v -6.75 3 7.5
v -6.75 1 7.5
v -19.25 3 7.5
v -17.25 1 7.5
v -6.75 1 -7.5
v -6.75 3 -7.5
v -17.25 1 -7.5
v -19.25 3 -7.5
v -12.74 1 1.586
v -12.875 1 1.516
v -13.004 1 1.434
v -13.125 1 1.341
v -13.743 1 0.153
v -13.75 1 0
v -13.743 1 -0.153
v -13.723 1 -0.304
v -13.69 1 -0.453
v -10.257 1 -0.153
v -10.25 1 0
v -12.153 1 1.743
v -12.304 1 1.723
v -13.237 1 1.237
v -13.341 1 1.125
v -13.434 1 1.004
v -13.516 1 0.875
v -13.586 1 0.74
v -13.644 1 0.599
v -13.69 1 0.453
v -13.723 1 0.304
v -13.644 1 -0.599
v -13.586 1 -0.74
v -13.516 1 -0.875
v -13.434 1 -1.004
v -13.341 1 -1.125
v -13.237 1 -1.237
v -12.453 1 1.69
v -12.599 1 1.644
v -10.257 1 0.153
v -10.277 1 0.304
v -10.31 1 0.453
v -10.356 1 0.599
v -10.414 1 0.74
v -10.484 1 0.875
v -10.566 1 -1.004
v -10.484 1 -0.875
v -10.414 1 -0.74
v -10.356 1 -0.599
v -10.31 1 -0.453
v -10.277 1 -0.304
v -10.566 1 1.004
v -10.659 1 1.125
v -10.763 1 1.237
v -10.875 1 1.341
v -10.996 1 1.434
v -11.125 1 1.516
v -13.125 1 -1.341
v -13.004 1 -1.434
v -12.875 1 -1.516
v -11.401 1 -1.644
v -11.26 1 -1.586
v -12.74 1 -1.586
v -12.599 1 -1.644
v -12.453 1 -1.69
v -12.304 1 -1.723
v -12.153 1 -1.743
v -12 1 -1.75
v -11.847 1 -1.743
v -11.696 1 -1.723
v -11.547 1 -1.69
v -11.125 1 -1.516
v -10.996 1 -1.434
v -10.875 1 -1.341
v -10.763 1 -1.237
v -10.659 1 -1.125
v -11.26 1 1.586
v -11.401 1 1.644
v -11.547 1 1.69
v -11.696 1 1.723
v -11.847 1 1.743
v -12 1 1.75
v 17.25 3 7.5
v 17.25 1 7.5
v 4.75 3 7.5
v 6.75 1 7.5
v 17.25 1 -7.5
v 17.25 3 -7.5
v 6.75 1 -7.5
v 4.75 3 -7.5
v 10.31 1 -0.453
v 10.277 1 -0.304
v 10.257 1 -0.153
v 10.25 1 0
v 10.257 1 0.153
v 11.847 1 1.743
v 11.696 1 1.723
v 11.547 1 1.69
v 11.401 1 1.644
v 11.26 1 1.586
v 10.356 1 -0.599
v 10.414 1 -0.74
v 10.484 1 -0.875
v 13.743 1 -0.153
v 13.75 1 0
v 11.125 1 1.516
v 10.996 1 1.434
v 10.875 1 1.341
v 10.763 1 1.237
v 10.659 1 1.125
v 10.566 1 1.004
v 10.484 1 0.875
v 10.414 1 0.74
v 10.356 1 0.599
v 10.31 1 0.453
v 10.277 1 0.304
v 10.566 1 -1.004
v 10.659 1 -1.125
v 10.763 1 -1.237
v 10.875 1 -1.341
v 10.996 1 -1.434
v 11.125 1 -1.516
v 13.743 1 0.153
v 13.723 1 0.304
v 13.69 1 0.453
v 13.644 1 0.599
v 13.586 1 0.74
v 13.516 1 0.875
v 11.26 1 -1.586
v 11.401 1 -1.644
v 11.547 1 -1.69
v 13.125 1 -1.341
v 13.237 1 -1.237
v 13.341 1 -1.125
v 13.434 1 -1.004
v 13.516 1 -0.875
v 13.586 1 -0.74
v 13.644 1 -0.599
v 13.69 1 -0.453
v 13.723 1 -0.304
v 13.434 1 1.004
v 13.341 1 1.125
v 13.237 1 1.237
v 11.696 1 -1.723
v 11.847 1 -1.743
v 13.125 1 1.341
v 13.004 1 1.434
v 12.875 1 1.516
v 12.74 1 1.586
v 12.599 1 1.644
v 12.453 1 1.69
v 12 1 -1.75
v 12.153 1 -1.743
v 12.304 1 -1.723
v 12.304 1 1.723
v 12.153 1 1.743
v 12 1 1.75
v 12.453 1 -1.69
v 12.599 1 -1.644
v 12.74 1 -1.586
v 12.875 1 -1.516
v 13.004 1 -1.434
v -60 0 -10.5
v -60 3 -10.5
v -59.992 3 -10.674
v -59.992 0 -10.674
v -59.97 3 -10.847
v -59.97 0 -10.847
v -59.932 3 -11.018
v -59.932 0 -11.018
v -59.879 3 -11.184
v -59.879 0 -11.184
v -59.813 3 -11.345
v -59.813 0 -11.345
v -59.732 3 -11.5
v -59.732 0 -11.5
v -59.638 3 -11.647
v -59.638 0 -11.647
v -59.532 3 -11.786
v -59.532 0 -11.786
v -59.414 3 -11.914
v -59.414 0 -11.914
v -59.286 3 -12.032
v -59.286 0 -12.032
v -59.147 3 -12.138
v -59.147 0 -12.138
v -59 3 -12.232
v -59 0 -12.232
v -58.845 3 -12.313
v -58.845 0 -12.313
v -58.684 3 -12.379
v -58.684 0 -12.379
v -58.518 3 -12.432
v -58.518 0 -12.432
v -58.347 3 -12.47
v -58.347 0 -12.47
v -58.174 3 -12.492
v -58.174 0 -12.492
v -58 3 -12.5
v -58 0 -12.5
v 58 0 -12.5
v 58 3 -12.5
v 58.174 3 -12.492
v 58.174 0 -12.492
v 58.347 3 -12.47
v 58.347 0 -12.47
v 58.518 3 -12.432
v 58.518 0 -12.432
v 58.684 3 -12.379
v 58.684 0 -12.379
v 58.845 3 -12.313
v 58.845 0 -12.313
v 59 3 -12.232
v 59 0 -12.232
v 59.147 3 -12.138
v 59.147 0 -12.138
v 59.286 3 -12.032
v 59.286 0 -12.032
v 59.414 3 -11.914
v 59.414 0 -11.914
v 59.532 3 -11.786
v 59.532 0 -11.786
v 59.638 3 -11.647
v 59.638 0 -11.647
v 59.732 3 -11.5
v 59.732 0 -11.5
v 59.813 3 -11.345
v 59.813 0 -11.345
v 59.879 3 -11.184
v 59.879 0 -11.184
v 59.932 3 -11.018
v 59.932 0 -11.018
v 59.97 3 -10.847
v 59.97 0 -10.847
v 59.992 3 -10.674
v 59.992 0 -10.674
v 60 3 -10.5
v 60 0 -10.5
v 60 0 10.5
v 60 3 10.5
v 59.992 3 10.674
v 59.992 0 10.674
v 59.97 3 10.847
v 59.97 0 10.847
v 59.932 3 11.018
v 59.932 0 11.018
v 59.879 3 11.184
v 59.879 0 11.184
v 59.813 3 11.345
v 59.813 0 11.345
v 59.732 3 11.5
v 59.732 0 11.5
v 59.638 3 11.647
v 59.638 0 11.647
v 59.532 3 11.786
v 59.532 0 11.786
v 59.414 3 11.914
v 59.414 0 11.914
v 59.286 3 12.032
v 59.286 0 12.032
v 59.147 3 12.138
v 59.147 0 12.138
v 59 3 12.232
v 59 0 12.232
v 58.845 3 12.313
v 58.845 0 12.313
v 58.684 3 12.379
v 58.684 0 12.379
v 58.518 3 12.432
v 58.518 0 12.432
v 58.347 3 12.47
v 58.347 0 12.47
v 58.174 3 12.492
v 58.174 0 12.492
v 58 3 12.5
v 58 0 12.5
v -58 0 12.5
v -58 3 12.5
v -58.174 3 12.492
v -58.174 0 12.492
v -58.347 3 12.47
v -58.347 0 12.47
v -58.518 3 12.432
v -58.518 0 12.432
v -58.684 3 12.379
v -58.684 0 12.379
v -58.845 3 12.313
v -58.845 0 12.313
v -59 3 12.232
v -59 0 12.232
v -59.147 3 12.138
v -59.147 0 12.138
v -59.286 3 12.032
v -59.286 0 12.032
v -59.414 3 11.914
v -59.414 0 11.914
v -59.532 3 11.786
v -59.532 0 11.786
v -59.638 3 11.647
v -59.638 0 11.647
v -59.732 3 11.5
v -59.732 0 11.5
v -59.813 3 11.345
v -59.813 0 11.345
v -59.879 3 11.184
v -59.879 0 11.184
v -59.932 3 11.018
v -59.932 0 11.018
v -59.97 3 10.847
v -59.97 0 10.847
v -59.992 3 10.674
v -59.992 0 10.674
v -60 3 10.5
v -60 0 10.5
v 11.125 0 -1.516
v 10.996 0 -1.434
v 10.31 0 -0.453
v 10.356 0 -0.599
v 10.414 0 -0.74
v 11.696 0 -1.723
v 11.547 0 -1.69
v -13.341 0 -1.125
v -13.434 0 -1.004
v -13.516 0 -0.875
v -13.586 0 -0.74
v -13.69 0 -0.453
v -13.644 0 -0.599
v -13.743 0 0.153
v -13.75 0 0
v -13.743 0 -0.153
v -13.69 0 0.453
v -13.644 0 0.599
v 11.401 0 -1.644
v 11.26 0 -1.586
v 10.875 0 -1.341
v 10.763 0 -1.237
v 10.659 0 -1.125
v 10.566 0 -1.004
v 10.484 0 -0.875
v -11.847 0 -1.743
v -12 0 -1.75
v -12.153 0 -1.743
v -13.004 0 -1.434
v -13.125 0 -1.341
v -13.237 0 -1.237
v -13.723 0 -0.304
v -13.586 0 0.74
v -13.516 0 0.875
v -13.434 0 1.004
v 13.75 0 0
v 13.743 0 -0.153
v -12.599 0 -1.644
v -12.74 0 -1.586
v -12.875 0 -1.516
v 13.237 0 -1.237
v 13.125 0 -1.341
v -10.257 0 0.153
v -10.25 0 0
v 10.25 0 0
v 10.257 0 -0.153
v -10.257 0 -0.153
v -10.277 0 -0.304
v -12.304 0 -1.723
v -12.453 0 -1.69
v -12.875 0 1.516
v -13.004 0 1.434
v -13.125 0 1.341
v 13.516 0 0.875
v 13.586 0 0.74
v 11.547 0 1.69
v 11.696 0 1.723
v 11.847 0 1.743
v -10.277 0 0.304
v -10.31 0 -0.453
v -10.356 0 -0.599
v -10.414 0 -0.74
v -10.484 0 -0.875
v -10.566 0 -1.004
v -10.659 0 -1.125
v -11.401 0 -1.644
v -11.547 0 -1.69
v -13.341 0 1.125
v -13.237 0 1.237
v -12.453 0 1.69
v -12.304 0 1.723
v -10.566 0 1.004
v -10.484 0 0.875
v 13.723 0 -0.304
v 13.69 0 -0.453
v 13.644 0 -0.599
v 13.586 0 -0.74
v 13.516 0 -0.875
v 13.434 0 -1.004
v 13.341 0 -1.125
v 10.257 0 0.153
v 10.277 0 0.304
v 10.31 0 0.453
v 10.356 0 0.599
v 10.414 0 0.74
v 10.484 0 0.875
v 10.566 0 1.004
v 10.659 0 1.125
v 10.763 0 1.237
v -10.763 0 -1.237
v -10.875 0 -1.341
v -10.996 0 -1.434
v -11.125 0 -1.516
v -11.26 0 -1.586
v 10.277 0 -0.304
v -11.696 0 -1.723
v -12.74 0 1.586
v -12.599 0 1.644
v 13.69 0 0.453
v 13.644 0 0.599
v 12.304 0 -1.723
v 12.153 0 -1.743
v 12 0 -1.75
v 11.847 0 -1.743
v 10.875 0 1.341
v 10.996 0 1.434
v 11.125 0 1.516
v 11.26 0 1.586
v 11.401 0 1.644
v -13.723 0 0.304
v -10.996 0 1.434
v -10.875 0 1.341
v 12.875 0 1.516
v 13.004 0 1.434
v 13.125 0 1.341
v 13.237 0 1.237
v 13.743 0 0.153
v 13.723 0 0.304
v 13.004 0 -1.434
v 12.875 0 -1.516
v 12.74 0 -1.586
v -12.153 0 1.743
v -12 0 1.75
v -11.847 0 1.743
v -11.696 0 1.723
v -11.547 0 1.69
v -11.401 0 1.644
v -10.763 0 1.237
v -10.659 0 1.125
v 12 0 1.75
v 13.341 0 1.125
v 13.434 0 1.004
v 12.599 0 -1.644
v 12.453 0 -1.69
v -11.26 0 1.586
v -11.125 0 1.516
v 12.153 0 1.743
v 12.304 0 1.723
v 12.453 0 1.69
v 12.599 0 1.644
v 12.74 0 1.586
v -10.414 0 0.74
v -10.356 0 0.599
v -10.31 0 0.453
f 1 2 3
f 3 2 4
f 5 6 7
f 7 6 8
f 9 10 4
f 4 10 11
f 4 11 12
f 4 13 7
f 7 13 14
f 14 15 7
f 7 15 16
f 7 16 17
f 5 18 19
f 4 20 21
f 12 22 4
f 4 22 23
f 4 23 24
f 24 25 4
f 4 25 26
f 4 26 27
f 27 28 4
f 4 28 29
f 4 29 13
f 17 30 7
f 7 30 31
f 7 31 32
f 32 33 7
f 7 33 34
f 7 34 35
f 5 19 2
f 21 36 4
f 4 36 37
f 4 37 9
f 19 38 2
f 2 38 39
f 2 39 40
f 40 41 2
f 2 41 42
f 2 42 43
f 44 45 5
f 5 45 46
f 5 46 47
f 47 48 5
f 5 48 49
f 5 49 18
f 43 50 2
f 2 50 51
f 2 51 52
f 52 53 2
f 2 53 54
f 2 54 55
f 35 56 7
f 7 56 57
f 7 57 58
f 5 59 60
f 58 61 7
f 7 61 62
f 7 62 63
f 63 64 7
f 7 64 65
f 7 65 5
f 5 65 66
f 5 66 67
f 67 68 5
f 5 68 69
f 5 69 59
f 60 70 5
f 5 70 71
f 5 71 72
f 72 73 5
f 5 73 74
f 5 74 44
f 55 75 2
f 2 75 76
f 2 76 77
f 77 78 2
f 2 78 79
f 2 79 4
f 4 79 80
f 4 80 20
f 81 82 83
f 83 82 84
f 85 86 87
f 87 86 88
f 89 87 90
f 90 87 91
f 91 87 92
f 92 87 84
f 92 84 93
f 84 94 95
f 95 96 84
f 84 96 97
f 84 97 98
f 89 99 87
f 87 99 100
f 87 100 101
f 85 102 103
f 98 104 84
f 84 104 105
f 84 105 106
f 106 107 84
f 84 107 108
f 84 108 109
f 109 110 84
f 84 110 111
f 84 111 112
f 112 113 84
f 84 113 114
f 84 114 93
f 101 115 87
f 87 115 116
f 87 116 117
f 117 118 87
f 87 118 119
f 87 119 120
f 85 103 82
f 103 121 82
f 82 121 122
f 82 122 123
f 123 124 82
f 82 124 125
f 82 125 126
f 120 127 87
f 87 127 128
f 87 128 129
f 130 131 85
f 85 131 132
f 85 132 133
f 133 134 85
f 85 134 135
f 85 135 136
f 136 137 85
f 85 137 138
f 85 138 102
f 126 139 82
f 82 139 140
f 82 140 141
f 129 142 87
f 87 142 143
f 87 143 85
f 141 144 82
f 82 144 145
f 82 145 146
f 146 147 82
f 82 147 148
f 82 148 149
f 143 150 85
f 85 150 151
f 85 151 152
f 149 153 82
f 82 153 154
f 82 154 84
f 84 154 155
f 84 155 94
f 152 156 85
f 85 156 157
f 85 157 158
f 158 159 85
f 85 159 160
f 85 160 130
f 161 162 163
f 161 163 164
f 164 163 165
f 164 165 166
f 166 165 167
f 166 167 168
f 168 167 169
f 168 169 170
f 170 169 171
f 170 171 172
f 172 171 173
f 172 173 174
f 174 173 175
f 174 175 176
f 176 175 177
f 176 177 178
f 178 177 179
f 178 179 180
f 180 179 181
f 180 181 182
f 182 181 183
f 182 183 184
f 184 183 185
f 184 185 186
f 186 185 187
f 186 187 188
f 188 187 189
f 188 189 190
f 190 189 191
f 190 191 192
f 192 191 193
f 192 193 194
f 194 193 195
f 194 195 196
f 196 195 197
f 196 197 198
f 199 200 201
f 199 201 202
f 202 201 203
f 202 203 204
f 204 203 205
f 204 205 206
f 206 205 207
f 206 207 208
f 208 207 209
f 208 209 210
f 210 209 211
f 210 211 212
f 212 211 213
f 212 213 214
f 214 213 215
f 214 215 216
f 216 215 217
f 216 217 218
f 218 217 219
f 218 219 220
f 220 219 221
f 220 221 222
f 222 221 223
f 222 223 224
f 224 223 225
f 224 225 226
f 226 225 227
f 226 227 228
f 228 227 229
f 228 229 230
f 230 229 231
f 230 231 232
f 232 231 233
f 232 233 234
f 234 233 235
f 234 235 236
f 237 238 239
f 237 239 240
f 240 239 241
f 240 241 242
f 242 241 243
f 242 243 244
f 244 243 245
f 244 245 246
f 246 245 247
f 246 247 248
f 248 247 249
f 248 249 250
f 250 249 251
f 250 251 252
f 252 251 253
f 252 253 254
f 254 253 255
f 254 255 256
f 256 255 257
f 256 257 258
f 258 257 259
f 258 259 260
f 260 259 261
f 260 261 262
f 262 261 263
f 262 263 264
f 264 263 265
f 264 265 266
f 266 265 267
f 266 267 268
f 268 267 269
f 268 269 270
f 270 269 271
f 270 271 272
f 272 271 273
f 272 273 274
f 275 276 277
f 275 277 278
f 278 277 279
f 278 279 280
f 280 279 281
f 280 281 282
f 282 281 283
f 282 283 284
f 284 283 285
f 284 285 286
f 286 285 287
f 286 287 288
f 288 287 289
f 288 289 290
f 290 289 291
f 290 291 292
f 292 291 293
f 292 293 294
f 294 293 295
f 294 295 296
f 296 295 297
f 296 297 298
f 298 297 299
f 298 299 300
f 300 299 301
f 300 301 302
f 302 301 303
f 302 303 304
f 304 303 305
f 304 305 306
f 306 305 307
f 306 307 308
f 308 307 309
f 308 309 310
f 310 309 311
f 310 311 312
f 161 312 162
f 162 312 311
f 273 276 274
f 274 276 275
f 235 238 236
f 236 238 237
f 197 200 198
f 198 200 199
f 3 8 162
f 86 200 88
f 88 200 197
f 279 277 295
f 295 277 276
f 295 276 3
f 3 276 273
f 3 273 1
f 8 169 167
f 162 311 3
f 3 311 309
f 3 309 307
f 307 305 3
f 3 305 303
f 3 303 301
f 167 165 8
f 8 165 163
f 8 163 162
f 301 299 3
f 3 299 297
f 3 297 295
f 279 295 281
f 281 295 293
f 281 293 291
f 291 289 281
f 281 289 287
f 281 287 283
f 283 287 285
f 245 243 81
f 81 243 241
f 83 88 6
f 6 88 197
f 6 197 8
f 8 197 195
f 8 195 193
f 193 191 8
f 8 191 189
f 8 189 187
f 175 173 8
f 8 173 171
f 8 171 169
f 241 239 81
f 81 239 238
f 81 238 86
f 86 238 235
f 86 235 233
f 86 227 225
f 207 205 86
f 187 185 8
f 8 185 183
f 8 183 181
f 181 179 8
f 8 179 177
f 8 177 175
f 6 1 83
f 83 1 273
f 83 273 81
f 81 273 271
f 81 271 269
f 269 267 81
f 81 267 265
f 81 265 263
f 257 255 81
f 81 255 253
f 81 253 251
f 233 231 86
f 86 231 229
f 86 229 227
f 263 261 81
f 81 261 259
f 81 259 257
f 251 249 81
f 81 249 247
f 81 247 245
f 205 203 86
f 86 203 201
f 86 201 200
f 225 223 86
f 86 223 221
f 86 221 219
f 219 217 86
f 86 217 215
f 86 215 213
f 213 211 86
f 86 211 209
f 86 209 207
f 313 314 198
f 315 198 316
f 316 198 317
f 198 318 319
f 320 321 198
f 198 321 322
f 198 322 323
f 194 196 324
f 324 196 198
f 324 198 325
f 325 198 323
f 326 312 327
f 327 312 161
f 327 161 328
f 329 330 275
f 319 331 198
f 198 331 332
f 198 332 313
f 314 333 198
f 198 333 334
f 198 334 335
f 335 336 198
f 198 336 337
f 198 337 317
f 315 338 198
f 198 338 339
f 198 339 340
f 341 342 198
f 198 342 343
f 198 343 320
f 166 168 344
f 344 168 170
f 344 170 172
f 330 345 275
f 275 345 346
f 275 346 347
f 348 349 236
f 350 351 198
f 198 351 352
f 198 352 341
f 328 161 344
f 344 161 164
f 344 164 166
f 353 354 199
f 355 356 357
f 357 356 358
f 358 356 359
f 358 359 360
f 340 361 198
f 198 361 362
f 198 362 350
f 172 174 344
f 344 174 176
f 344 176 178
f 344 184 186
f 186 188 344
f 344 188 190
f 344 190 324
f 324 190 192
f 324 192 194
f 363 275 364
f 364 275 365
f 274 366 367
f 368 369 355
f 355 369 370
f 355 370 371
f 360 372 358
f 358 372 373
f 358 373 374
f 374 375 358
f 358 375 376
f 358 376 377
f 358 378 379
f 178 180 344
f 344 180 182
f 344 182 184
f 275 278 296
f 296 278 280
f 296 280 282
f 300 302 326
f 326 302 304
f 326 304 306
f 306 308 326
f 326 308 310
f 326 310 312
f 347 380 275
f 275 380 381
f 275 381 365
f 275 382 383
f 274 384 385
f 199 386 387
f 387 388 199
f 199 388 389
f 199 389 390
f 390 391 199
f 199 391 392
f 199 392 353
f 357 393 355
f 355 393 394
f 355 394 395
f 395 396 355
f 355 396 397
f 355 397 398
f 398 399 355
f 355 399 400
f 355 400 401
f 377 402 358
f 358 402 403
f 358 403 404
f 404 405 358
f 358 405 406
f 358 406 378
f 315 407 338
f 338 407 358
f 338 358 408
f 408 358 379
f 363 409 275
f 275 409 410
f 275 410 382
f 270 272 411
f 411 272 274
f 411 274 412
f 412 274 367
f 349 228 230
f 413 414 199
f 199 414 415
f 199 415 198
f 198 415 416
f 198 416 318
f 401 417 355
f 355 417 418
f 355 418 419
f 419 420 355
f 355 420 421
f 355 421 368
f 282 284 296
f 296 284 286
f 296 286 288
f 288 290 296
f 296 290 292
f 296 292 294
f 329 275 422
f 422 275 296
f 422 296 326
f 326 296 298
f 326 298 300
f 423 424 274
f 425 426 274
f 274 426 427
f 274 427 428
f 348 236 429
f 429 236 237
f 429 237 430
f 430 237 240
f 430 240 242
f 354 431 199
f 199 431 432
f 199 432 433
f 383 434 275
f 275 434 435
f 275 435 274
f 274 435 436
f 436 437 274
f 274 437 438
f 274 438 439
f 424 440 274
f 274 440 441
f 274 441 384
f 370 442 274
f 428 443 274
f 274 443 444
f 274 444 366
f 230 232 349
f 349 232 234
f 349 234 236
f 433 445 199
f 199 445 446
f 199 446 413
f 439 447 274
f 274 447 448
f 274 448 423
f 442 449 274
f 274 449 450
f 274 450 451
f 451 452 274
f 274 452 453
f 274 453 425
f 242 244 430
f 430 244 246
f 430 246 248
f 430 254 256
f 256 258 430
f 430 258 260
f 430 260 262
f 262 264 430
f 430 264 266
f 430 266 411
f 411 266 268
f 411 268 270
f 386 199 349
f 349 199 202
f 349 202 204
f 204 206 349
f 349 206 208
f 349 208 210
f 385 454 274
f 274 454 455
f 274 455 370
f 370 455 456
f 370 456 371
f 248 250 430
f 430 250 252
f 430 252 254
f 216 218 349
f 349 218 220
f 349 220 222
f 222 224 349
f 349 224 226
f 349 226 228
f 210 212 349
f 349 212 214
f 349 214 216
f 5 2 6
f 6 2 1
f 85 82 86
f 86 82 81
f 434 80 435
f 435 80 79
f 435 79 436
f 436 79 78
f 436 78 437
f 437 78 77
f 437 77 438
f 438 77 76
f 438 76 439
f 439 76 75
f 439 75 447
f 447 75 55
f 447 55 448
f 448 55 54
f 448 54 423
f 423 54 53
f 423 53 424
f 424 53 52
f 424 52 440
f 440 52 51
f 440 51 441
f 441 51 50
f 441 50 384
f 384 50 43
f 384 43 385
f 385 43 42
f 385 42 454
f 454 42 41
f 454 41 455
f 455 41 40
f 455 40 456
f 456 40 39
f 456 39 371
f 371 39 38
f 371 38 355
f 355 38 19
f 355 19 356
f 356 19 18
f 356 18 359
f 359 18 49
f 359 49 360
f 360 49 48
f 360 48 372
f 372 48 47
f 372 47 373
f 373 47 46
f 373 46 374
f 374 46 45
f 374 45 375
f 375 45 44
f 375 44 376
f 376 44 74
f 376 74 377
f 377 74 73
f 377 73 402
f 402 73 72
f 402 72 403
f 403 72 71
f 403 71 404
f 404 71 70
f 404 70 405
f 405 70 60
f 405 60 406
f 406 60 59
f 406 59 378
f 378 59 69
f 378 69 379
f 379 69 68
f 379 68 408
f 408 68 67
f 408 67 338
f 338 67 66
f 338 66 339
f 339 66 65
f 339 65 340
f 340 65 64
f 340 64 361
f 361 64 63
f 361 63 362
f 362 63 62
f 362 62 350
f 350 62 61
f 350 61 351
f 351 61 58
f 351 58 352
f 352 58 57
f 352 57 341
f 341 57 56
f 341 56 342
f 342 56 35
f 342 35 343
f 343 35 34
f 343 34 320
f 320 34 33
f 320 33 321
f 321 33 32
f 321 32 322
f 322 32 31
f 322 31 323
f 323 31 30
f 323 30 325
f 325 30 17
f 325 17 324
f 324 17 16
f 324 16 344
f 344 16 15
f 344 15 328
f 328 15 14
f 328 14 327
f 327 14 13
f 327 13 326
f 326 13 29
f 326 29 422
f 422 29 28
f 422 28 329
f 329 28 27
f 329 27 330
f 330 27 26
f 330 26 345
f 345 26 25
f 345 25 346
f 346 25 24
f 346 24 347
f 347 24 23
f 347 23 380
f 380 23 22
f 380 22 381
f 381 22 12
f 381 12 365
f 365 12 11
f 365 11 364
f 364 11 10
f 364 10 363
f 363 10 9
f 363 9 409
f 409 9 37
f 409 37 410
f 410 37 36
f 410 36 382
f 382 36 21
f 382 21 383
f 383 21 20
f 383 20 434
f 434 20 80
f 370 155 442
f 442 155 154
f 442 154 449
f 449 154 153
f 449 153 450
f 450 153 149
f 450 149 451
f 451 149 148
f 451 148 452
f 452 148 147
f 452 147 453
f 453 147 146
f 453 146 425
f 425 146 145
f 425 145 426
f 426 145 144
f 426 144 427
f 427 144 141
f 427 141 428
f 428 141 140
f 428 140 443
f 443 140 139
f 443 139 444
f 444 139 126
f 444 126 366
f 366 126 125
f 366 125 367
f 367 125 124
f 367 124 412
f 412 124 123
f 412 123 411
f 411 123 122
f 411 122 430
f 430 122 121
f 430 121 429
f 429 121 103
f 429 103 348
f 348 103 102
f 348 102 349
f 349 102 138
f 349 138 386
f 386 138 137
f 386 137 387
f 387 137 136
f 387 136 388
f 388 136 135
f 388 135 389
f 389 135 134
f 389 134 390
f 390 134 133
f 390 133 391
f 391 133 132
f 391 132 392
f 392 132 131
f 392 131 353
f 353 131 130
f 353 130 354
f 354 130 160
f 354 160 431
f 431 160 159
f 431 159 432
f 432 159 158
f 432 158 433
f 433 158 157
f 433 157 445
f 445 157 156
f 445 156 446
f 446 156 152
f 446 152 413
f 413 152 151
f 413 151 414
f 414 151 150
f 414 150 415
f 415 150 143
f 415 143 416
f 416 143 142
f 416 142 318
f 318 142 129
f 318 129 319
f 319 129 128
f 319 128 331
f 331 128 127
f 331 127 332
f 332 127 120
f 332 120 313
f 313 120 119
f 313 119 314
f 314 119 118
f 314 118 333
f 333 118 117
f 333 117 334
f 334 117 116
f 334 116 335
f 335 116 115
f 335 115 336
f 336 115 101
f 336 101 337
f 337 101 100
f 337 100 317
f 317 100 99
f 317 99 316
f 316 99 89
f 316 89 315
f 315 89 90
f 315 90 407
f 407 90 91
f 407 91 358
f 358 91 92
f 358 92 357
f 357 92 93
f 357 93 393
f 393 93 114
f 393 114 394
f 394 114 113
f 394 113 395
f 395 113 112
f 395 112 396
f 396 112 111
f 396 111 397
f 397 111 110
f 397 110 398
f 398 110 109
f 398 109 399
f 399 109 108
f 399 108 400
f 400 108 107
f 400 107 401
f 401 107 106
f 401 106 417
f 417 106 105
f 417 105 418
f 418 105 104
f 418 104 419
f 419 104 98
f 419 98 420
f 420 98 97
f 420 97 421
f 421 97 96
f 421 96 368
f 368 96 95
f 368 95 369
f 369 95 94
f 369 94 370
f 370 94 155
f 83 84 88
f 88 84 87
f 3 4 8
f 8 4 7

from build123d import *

# Parameters (mm, degrees)
TOP_COVER_W             = 120
TOP_COVER_H             = 25
BOSS_EXTRUDE1_DEPTH     = 3
ATTACHMENT_POINT_W      = 10.5
ATTACHMENT_POINT_H      = 15
CUT_EXTRUDE1_DEPTH      = 2
SKETCH4_R               = 1.75
M3_SCREW_CUT_DEPTH      = 62.361632964
FILLET1_R               = 2
FILLET2_R               = 2
FILLET3_R               = 2
FILLET4_R               = 2
SKETCH5_W               = 3
SKETCH5_H               = 15
CUT_EXTRUDE3_DEPTH      = 2
CONNETOR_1_ANGLE_DEPTH  = 15
CONNECTOR_2_ANGLE_DEPTH = 15


with BuildPart() as part:
    # Top Cover → Boss-Extrude1 (new body)
    with BuildSketch(Plane(origin=(0, 0, 0), x_dir=(1, 0, 0), z_dir=(0, 1, 0))):
        Rectangle(TOP_COVER_W, TOP_COVER_H)
    extrude(amount=BOSS_EXTRUDE1_DEPTH)

    # Attachment Point → Cut-Extrude1 (cut)
    with BuildSketch(Plane(origin=(0, 3, 0), x_dir=(1, 0, 0), z_dir=(0, 1, 0))):
        with Locations((-12, 0)):
            Rectangle(ATTACHMENT_POINT_W, ATTACHMENT_POINT_H)
        with Locations((12, 0)):
            Rectangle(ATTACHMENT_POINT_W, ATTACHMENT_POINT_H)
    extrude(amount=-CUT_EXTRUDE1_DEPTH, mode=Mode.SUBTRACT)

    # Sketch4 → M3 Screw CUT (cut, through all)
    with BuildSketch(Plane(origin=(0, 3, 0), x_dir=(1, 0, 0), z_dir=(0, 1, 0))):
        with Locations(Location((-12, 0, 0), (0, 0, 270))):
            Circle(SKETCH4_R)
        with Locations(Location((12, 0, 0), (0, 0, 90))):
            Circle(SKETCH4_R)
    extrude(amount=-M3_SCREW_CUT_DEPTH, mode=Mode.SUBTRACT)

    # Fillet1
    fillet1_edges = [part.edges().sort_by_distance(p)[0] for p in [
        (-60, 1.5, 12.5),
    ]]
    fillet(fillet1_edges, radius=FILLET1_R)

    # Fillet2
    fillet2_edges = [part.edges().sort_by_distance(p)[0] for p in [
        (60, 1.5, 12.5),
    ]]
    fillet(fillet2_edges, radius=FILLET2_R)

    # Fillet3
    fillet3_edges = [part.edges().sort_by_distance(p)[0] for p in [
        (60, 1.5, -12.5),
    ]]
    fillet(fillet3_edges, radius=FILLET3_R)

    # Fillet4
    fillet4_edges = [part.edges().sort_by_distance(p)[0] for p in [
        (-60, 1.5, -12.5),
    ]]
    fillet(fillet4_edges, radius=FILLET4_R)

    # Sketch5 → Cut-Extrude3 (cut)
    with BuildSketch(Plane(origin=(0, 3, 0), x_dir=(1, 0, 0), z_dir=(0, 1, 0))):
        with Locations((5.25, 0)):
            Rectangle(SKETCH5_W, SKETCH5_H)
        with Locations((-18.75, 0)):
            Rectangle(SKETCH5_W, SKETCH5_H)
    extrude(amount=-CUT_EXTRUDE3_DEPTH, mode=Mode.SUBTRACT)

    # Sketch6 → Connetor 1 Angle (add)
    with BuildSketch(Plane(origin=(0, 0, 7.5), x_dir=(-1, 0, 0), z_dir=(0, 0, -1))):
        Polygon((-4.75, 3), (-6.75, 1), (-3.75, 1), (-3.75, 3), align=None)
    extrude(amount=CONNETOR_1_ANGLE_DEPTH)

    # Sketch7 → Connector 2 Angle (add)
    with BuildSketch(Plane(origin=(0, 0, 7.5), x_dir=(-1, 0, 0), z_dir=(0, 0, -1))):
        Polygon((19.25, 3), (17.25, 1), (20.25, 1), (20.25, 3), align=None)
    extrude(amount=CONNECTOR_2_ANGLE_DEPTH)


solid = part.part
